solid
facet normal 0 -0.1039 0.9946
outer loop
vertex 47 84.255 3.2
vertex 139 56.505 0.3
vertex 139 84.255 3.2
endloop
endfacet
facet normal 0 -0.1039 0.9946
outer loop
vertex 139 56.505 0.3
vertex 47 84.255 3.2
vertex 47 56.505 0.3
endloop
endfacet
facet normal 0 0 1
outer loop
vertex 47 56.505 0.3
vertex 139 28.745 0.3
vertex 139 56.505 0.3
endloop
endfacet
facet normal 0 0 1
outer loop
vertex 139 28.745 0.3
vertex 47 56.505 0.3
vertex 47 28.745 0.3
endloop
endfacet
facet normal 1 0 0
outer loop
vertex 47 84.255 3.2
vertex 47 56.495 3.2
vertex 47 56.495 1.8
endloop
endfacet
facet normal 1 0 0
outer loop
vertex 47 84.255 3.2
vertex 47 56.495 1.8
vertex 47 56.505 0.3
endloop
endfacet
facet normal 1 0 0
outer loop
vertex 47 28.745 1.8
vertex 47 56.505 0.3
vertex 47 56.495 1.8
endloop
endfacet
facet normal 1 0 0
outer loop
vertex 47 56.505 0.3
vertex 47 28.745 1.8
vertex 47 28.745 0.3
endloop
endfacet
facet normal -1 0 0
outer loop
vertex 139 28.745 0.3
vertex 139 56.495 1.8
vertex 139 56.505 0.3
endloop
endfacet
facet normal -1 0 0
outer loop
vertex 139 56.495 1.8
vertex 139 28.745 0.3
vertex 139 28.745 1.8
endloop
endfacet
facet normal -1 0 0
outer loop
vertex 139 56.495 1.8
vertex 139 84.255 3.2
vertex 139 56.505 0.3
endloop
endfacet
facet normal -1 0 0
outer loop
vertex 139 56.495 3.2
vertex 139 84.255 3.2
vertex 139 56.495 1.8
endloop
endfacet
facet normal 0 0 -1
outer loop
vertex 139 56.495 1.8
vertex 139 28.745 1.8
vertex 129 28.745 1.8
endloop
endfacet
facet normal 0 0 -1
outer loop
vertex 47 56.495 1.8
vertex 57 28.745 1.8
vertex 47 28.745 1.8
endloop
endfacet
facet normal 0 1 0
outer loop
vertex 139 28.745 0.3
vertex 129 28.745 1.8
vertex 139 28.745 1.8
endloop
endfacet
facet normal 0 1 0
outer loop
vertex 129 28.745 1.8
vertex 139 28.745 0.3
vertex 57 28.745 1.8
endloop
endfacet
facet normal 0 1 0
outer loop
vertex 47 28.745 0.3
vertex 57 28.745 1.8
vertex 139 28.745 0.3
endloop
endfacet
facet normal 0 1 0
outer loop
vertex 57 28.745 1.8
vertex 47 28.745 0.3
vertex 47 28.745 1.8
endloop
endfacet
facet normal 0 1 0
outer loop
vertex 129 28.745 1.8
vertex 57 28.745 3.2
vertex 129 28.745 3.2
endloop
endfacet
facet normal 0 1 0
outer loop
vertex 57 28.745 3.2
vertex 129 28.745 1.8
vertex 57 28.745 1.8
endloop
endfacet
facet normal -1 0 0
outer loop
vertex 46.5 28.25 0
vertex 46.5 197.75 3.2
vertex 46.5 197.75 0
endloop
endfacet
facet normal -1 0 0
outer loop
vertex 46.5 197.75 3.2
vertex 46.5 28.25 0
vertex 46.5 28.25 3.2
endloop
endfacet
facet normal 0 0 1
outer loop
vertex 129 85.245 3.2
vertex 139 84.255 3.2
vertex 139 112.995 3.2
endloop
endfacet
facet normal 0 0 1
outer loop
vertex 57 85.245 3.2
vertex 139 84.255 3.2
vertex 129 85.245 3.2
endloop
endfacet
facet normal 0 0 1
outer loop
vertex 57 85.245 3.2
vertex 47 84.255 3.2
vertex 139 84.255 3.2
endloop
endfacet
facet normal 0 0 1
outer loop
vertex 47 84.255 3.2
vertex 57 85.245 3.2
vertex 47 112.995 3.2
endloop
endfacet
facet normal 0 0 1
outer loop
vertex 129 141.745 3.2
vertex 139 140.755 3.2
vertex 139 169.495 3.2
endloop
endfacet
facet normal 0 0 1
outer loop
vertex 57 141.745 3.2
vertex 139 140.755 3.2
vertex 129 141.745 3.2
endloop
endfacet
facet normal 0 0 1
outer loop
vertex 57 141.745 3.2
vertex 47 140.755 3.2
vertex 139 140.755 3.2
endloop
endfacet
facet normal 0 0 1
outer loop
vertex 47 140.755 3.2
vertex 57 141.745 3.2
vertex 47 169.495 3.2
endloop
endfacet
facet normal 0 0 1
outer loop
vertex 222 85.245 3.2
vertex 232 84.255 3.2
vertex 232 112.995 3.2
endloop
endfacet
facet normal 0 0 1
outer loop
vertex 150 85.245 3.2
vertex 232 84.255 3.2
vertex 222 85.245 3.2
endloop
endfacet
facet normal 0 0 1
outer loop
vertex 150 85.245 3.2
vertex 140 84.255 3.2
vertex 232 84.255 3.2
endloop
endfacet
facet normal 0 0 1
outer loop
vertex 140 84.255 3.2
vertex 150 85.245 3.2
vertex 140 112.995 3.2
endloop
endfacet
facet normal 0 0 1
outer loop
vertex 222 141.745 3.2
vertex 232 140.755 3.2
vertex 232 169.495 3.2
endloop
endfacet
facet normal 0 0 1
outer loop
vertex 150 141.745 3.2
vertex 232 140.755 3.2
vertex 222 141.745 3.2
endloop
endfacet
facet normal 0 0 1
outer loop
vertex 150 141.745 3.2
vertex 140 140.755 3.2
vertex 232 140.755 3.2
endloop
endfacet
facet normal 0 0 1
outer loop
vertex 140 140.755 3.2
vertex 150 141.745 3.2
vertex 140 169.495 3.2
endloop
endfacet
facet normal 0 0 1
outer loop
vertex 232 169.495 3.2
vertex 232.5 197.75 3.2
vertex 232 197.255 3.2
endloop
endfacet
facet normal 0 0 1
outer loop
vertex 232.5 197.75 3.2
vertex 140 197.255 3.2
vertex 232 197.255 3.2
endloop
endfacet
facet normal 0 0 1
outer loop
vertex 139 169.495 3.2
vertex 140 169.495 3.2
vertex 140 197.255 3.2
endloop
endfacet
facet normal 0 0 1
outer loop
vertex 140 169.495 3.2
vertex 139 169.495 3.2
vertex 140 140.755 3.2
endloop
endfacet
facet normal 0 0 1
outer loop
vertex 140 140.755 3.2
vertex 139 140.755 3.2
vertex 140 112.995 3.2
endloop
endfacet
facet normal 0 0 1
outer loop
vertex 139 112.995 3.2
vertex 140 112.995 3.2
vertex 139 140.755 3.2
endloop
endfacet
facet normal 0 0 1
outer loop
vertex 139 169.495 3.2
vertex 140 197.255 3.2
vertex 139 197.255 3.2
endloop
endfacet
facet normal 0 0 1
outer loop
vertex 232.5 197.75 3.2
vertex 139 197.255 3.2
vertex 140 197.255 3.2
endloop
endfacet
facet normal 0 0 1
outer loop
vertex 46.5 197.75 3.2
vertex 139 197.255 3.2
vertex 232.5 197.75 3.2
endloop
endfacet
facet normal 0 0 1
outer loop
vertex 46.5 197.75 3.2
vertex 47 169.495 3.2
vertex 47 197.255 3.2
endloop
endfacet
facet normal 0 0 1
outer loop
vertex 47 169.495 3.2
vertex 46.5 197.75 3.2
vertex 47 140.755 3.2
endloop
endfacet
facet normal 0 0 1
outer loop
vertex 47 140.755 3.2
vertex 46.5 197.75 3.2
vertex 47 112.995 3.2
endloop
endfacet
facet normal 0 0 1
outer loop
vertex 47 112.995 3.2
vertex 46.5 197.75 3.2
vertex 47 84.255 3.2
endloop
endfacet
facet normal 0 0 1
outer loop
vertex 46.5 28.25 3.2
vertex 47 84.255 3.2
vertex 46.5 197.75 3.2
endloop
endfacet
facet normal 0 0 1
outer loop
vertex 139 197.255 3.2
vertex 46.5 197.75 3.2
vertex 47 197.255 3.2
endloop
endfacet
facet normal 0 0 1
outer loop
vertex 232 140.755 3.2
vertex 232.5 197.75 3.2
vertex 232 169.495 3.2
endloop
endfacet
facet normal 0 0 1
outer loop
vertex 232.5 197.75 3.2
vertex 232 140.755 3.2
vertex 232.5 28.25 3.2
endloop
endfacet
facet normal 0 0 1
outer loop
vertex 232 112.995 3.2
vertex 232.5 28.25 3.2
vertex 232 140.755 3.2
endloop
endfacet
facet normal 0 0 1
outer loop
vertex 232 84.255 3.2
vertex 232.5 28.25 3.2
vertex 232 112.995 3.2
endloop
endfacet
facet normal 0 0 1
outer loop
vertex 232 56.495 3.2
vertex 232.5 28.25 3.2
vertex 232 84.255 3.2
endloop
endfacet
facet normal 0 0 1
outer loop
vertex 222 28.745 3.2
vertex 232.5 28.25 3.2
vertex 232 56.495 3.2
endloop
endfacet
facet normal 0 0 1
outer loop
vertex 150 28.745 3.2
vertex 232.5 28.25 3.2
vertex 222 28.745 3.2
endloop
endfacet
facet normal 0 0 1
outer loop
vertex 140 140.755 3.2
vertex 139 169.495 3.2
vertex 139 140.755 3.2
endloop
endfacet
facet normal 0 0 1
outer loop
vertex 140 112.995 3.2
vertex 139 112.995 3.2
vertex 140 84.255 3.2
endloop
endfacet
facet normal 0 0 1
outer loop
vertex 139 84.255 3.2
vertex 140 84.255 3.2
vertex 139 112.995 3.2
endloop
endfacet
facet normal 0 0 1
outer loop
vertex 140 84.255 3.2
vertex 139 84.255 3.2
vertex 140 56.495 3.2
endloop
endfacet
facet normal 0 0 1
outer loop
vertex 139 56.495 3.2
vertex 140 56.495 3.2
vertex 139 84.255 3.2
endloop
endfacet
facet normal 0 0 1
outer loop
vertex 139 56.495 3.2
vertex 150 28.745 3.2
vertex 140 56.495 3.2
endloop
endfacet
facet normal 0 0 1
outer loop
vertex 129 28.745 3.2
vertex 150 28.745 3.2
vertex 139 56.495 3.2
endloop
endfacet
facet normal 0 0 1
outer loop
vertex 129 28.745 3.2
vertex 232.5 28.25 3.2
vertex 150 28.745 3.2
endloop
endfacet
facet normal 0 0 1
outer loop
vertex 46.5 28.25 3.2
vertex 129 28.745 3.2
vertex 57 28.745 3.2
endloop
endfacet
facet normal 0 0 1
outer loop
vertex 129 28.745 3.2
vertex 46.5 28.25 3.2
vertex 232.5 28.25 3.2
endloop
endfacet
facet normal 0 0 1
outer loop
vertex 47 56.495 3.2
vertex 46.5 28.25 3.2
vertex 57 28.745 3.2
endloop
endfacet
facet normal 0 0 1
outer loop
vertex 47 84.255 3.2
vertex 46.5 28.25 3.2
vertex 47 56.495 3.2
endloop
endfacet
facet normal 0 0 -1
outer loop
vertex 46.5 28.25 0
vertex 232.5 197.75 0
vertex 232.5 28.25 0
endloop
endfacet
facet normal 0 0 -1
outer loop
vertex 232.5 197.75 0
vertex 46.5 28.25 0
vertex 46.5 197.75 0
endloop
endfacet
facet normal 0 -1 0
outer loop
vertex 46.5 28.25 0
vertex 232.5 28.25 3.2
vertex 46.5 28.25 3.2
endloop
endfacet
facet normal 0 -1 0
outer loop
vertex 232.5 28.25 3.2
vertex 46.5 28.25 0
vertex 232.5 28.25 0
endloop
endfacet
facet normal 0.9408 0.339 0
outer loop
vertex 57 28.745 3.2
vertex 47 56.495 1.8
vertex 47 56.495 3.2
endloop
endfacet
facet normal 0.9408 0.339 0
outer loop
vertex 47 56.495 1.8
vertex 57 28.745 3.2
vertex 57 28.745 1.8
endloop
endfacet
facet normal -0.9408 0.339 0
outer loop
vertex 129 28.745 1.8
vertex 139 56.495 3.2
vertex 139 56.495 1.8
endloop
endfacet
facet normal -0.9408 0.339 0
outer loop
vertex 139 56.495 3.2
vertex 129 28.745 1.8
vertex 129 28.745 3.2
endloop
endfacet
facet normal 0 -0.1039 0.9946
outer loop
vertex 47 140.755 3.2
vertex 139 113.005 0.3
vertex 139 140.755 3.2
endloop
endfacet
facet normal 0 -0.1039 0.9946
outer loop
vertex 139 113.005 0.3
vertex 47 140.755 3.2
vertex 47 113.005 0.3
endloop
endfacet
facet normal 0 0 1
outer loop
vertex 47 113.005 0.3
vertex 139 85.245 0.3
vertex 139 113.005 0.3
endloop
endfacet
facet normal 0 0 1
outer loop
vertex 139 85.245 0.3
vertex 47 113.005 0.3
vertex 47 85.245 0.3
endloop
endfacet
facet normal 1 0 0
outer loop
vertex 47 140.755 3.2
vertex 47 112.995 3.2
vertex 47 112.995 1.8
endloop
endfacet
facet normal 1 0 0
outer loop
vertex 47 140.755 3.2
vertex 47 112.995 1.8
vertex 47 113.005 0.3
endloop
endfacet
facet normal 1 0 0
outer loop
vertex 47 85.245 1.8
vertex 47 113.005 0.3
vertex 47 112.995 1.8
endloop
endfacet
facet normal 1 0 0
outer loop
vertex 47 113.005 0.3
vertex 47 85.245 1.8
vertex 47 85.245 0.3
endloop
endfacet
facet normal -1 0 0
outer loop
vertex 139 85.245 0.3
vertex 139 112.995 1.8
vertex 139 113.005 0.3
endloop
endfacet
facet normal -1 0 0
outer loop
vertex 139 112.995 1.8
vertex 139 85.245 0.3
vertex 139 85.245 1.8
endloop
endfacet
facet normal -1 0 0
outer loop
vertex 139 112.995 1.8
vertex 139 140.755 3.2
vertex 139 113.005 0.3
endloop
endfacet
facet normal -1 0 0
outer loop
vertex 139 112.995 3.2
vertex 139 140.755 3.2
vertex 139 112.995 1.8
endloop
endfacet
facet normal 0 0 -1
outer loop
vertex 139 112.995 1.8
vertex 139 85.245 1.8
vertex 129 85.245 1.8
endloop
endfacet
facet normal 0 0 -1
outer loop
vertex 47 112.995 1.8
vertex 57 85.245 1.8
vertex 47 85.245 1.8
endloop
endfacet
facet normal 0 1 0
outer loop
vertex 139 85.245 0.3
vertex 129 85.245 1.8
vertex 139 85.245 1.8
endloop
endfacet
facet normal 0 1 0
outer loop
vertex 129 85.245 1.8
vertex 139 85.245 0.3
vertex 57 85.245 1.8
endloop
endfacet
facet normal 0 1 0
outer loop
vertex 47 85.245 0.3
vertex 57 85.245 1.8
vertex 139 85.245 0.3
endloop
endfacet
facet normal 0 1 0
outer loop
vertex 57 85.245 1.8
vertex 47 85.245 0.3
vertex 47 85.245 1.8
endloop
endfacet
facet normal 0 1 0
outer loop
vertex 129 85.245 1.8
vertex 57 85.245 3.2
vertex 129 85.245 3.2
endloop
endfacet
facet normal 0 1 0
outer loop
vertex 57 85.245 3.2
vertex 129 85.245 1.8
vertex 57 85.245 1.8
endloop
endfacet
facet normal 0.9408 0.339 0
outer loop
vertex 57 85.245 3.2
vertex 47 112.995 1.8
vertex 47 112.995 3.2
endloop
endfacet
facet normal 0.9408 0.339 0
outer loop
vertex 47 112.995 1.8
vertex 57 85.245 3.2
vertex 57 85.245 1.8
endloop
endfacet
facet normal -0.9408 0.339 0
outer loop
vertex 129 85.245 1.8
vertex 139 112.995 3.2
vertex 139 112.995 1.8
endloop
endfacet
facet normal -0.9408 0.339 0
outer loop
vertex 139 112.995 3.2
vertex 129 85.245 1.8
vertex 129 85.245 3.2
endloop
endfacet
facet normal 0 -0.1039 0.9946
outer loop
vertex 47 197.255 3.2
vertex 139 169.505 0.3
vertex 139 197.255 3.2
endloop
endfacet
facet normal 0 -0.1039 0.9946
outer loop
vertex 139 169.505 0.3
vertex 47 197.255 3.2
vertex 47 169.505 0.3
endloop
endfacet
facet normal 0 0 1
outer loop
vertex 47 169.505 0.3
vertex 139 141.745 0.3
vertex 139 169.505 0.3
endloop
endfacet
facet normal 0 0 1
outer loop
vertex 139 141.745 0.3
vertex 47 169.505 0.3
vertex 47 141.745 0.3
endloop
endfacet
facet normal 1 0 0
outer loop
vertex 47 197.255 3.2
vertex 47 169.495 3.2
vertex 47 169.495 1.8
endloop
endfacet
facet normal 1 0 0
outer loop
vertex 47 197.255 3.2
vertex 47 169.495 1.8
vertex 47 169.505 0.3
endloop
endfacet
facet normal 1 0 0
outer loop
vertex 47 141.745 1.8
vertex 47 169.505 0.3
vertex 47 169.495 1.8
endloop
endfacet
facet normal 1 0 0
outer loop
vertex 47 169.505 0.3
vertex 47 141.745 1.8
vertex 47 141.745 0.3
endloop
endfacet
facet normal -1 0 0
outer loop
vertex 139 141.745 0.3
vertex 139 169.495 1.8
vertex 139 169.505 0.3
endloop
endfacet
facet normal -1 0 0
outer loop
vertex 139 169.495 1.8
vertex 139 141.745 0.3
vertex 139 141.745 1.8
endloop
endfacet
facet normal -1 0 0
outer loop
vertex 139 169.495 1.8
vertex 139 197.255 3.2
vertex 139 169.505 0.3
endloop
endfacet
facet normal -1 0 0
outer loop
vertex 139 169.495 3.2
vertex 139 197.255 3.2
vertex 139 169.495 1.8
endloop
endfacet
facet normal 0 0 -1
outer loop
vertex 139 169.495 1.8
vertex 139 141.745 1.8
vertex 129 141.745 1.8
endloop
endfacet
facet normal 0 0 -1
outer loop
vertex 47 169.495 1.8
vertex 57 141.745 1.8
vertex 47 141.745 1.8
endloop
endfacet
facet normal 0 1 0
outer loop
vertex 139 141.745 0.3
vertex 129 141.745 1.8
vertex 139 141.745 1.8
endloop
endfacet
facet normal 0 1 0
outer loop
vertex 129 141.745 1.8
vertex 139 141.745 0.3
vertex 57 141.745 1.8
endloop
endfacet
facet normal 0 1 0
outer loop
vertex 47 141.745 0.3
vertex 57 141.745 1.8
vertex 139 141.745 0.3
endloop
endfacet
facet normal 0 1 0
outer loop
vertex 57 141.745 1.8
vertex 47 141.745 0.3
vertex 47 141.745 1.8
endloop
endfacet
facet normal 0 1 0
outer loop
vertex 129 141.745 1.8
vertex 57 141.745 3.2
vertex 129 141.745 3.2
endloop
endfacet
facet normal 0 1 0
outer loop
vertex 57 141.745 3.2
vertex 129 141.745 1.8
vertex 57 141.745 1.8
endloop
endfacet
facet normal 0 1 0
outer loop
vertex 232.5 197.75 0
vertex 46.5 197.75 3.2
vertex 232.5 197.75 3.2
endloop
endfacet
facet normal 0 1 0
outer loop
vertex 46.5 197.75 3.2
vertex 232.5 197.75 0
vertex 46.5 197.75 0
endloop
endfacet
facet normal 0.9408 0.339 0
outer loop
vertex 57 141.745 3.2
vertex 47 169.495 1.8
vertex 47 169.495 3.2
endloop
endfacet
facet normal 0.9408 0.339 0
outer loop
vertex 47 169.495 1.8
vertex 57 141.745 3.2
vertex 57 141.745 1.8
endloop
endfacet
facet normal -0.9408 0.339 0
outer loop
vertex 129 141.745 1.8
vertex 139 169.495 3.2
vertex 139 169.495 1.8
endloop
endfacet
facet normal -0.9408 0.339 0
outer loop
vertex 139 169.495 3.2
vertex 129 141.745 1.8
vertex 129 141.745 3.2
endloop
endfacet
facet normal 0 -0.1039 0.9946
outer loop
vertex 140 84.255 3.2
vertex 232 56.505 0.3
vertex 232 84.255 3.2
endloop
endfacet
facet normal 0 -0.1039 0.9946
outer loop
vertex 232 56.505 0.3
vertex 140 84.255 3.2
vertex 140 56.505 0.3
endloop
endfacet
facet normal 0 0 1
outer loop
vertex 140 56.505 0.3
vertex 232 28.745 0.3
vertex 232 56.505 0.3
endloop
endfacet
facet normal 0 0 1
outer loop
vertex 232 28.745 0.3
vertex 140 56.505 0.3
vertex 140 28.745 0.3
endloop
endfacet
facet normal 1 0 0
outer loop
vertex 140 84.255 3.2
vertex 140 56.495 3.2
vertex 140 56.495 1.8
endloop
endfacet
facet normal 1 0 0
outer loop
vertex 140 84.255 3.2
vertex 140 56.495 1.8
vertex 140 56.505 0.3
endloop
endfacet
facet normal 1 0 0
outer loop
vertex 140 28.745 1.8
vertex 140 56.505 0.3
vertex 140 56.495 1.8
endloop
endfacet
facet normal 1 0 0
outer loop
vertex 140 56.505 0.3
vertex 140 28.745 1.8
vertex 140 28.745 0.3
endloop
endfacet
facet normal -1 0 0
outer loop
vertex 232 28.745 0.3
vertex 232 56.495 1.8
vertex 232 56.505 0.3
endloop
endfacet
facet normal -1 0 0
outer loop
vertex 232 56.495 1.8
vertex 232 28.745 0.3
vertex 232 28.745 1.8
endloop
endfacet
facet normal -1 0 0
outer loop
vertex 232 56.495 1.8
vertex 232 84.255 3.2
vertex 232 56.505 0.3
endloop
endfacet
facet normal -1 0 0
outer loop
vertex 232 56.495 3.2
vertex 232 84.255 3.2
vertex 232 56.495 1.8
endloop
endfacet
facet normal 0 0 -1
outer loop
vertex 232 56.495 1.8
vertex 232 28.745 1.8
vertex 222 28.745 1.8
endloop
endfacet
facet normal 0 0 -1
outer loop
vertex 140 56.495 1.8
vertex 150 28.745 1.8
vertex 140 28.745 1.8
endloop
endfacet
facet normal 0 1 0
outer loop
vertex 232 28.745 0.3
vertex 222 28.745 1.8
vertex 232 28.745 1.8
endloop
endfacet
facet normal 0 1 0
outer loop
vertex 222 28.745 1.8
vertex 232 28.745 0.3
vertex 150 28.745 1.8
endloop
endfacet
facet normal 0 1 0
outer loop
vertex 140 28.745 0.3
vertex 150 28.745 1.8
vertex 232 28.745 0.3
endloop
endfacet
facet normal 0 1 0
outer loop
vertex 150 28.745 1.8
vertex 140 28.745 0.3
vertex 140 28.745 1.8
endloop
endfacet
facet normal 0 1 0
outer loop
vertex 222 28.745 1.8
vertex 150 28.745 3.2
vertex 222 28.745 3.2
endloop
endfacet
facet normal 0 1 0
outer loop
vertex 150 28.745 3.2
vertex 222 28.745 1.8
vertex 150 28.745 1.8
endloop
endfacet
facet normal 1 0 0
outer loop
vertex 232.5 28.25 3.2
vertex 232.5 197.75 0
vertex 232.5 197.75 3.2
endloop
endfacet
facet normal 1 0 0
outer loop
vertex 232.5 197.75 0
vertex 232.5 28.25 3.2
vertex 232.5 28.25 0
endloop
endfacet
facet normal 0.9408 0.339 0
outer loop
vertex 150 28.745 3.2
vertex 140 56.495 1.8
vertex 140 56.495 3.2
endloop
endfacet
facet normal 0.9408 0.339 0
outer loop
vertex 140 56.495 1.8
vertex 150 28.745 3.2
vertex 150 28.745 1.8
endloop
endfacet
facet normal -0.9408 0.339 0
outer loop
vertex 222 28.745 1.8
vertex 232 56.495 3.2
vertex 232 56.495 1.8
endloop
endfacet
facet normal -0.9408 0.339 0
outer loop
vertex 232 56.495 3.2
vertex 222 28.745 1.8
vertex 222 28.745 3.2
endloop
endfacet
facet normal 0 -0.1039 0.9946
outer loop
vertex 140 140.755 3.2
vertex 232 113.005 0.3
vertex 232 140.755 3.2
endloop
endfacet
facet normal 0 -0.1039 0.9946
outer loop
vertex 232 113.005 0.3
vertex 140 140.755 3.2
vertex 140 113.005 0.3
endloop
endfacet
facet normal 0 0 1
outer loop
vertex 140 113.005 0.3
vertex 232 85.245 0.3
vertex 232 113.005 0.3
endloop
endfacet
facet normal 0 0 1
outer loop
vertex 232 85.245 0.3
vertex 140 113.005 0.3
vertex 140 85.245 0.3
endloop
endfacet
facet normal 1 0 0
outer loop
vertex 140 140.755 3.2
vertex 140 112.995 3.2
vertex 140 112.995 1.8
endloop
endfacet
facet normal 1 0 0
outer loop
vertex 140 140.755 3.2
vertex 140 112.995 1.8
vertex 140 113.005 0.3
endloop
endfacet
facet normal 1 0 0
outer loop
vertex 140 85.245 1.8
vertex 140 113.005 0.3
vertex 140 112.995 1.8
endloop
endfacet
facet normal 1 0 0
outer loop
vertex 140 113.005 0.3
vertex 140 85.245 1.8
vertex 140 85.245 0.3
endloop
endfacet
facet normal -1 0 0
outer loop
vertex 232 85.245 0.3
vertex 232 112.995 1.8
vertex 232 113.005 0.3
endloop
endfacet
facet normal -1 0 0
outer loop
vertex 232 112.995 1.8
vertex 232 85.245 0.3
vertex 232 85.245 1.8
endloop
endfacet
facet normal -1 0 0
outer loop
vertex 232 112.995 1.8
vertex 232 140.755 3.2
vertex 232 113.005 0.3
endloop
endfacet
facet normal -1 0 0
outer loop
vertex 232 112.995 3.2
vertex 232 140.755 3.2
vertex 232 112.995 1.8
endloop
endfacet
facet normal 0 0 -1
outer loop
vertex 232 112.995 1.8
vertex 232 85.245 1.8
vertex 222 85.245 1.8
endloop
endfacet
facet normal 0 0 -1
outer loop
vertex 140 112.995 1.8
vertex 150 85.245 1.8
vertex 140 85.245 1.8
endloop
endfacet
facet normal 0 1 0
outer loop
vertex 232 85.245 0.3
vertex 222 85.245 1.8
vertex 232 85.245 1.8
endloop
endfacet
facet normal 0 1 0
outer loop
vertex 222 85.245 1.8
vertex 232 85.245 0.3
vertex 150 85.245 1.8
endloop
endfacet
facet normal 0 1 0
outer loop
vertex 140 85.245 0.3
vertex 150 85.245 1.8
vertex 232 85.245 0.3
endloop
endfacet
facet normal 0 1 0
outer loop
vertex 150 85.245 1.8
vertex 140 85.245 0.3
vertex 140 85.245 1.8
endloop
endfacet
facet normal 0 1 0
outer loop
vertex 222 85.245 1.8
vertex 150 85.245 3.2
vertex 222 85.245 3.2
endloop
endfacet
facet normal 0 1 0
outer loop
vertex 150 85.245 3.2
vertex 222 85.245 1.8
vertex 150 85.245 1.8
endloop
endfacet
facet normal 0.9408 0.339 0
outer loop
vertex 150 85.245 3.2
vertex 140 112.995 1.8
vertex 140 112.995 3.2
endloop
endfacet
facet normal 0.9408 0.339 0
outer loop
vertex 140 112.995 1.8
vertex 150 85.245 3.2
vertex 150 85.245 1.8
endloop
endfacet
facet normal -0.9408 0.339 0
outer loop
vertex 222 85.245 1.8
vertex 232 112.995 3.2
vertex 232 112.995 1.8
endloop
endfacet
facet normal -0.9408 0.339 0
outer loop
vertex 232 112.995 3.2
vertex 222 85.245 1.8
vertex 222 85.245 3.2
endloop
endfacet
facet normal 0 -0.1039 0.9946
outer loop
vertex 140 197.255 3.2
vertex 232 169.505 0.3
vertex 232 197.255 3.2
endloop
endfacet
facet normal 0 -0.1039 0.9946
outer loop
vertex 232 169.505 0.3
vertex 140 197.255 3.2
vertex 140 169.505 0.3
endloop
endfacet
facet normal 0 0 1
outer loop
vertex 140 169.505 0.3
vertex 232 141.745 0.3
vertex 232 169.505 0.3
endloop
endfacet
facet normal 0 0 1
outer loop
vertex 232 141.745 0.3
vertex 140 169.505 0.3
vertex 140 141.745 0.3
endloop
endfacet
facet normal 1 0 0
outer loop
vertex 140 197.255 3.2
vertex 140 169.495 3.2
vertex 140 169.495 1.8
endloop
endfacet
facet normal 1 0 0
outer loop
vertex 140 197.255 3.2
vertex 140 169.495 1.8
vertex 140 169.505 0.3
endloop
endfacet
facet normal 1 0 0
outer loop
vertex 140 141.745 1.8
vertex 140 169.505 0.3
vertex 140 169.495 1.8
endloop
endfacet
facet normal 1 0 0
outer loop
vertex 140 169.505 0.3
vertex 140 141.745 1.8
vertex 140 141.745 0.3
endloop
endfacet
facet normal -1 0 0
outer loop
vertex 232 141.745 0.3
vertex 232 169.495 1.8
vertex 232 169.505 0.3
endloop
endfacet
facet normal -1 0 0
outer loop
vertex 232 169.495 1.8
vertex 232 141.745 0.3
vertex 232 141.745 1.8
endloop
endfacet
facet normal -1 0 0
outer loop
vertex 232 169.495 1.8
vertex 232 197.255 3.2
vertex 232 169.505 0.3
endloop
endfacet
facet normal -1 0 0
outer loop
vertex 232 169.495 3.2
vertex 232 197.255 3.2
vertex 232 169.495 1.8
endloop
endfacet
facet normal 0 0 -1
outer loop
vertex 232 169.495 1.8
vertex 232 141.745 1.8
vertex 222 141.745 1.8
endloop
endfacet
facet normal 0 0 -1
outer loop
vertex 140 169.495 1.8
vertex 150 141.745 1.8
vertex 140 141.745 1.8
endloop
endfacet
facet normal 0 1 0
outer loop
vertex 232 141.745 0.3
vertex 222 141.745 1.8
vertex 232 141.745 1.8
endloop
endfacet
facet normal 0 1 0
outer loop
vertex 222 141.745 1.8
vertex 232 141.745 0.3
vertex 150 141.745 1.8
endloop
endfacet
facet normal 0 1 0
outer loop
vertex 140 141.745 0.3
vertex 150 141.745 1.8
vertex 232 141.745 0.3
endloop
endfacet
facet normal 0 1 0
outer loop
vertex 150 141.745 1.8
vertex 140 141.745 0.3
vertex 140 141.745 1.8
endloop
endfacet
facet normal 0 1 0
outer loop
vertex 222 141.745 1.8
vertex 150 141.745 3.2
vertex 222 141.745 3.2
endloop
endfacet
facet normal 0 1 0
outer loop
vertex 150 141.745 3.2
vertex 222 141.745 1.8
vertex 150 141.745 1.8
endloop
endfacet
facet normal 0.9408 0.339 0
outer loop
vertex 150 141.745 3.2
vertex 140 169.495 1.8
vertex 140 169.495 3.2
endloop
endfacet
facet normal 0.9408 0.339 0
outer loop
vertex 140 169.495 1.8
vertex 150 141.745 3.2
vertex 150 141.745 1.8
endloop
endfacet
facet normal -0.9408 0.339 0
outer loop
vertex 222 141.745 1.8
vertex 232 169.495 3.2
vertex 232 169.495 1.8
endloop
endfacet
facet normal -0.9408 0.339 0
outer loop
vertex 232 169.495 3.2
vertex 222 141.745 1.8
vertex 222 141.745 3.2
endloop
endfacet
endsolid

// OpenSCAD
// Wall Mounted Single Card Holder
// By Brian Khuu 2022-04-10

print_layer_height = 0.2;

// Businesscard
// Default values based on https://www.mbe.com.au/what-is-the-standard-business-card-size-in-australia/
businesscard_width = 92; // 90mm but some in real life are more like 91mm (Plus 0.5 tol )
businesscard_height = 55.5; // 55mm (add 0.5mm tol)
businesscard_thickness = 1.5; // 0.25mm for thin paper cards. 0.8mm for thick plastic cards. We need to add extra thickness to account for layer droop

// Holder
wall_spacing = 1;
wall_card_grip = 20;
wall_x_count = 2; //2
wall_y_count = 3; //3

// Calc
wall_base = print_layer_height+0.1;
wall_top = print_layer_height*3+0.1;
wall_height = wall_base + businesscard_thickness + wall_top*2;


module cardWindowOutline()
{
    hull()
    {
        translate([0,businesscard_height/2,businesscard_thickness + wall_top*2])
        cube([businesscard_width, 0.01, 0.01], center = true);
        translate([0,0,0])
        cube([businesscard_width, 0.01, 0.01], center = true);
    }    
    hull()
    {
        translate([0,0,businesscard_thickness + wall_top*2])
        cube([businesscard_width, 0.01, 0.01], center = true);
        translate([0,-businesscard_height/2,0])
        cube([businesscard_width-wall_card_grip, 0.01, 0.01], center = true);
    }
}

module cardholder(reducePlastic=false)
{
    translate([0,0,wall_base+businesscard_thickness])
        rotate([2,0,0])
        %cube([85, 54, 0.1], center = true);

    difference()
    {
        translate([0,0,wall_height/2])
            cube([businesscard_width+wall_spacing, businesscard_height+wall_spacing, wall_height], center = true);
        
        // Card Slide
        translate([0,0,wall_base])
        translate([0,0,businesscard_thickness/2])
        {
            hull()
            {
                translate([0,businesscard_height/2,businesscard_thickness + wall_top*2])
                cube([businesscard_width, 0.01, businesscard_thickness], center = true);
                
                translate([0,0,0])
                cube([businesscard_width, 0.01, businesscard_thickness], center = true);
            }
            hull()
            {
                translate([0,-businesscard_height/2,0])
                cube([businesscard_width, 0.01, businesscard_thickness], center = true);
                
                cube([businesscard_width, 0.01, businesscard_thickness], center = true);
            }
        }
        
        // Card Window
        if (1)
        translate([0,0,wall_base+businesscard_thickness/2])
        {
            hull()
            {
                // Card Window Base
                cardWindowOutline();
                // Card Window Top
                translate([0,0,businesscard_thickness + wall_top * 2])
                    cardWindowOutline();
            }
        }
        
        // Reduce Plastic
        if (reducePlastic)
        translate([0,0,wall_base+businesscard_thickness/2+0.5])
        {
            cube([businesscard_width-wall_card_grip,businesscard_height, wall_height+1], center=true);
        }
    }
}

if (wall_x_count == 1 && wall_y_count == 1)
{
    cardholder(true);
}
else
{
    for (x = [1: 1 : wall_x_count])
        for (y = [1 : 1 : wall_y_count])
           translate([x*(businesscard_width+wall_spacing), y*(businesscard_height+wall_spacing), 0])
                cardholder(false);
}
